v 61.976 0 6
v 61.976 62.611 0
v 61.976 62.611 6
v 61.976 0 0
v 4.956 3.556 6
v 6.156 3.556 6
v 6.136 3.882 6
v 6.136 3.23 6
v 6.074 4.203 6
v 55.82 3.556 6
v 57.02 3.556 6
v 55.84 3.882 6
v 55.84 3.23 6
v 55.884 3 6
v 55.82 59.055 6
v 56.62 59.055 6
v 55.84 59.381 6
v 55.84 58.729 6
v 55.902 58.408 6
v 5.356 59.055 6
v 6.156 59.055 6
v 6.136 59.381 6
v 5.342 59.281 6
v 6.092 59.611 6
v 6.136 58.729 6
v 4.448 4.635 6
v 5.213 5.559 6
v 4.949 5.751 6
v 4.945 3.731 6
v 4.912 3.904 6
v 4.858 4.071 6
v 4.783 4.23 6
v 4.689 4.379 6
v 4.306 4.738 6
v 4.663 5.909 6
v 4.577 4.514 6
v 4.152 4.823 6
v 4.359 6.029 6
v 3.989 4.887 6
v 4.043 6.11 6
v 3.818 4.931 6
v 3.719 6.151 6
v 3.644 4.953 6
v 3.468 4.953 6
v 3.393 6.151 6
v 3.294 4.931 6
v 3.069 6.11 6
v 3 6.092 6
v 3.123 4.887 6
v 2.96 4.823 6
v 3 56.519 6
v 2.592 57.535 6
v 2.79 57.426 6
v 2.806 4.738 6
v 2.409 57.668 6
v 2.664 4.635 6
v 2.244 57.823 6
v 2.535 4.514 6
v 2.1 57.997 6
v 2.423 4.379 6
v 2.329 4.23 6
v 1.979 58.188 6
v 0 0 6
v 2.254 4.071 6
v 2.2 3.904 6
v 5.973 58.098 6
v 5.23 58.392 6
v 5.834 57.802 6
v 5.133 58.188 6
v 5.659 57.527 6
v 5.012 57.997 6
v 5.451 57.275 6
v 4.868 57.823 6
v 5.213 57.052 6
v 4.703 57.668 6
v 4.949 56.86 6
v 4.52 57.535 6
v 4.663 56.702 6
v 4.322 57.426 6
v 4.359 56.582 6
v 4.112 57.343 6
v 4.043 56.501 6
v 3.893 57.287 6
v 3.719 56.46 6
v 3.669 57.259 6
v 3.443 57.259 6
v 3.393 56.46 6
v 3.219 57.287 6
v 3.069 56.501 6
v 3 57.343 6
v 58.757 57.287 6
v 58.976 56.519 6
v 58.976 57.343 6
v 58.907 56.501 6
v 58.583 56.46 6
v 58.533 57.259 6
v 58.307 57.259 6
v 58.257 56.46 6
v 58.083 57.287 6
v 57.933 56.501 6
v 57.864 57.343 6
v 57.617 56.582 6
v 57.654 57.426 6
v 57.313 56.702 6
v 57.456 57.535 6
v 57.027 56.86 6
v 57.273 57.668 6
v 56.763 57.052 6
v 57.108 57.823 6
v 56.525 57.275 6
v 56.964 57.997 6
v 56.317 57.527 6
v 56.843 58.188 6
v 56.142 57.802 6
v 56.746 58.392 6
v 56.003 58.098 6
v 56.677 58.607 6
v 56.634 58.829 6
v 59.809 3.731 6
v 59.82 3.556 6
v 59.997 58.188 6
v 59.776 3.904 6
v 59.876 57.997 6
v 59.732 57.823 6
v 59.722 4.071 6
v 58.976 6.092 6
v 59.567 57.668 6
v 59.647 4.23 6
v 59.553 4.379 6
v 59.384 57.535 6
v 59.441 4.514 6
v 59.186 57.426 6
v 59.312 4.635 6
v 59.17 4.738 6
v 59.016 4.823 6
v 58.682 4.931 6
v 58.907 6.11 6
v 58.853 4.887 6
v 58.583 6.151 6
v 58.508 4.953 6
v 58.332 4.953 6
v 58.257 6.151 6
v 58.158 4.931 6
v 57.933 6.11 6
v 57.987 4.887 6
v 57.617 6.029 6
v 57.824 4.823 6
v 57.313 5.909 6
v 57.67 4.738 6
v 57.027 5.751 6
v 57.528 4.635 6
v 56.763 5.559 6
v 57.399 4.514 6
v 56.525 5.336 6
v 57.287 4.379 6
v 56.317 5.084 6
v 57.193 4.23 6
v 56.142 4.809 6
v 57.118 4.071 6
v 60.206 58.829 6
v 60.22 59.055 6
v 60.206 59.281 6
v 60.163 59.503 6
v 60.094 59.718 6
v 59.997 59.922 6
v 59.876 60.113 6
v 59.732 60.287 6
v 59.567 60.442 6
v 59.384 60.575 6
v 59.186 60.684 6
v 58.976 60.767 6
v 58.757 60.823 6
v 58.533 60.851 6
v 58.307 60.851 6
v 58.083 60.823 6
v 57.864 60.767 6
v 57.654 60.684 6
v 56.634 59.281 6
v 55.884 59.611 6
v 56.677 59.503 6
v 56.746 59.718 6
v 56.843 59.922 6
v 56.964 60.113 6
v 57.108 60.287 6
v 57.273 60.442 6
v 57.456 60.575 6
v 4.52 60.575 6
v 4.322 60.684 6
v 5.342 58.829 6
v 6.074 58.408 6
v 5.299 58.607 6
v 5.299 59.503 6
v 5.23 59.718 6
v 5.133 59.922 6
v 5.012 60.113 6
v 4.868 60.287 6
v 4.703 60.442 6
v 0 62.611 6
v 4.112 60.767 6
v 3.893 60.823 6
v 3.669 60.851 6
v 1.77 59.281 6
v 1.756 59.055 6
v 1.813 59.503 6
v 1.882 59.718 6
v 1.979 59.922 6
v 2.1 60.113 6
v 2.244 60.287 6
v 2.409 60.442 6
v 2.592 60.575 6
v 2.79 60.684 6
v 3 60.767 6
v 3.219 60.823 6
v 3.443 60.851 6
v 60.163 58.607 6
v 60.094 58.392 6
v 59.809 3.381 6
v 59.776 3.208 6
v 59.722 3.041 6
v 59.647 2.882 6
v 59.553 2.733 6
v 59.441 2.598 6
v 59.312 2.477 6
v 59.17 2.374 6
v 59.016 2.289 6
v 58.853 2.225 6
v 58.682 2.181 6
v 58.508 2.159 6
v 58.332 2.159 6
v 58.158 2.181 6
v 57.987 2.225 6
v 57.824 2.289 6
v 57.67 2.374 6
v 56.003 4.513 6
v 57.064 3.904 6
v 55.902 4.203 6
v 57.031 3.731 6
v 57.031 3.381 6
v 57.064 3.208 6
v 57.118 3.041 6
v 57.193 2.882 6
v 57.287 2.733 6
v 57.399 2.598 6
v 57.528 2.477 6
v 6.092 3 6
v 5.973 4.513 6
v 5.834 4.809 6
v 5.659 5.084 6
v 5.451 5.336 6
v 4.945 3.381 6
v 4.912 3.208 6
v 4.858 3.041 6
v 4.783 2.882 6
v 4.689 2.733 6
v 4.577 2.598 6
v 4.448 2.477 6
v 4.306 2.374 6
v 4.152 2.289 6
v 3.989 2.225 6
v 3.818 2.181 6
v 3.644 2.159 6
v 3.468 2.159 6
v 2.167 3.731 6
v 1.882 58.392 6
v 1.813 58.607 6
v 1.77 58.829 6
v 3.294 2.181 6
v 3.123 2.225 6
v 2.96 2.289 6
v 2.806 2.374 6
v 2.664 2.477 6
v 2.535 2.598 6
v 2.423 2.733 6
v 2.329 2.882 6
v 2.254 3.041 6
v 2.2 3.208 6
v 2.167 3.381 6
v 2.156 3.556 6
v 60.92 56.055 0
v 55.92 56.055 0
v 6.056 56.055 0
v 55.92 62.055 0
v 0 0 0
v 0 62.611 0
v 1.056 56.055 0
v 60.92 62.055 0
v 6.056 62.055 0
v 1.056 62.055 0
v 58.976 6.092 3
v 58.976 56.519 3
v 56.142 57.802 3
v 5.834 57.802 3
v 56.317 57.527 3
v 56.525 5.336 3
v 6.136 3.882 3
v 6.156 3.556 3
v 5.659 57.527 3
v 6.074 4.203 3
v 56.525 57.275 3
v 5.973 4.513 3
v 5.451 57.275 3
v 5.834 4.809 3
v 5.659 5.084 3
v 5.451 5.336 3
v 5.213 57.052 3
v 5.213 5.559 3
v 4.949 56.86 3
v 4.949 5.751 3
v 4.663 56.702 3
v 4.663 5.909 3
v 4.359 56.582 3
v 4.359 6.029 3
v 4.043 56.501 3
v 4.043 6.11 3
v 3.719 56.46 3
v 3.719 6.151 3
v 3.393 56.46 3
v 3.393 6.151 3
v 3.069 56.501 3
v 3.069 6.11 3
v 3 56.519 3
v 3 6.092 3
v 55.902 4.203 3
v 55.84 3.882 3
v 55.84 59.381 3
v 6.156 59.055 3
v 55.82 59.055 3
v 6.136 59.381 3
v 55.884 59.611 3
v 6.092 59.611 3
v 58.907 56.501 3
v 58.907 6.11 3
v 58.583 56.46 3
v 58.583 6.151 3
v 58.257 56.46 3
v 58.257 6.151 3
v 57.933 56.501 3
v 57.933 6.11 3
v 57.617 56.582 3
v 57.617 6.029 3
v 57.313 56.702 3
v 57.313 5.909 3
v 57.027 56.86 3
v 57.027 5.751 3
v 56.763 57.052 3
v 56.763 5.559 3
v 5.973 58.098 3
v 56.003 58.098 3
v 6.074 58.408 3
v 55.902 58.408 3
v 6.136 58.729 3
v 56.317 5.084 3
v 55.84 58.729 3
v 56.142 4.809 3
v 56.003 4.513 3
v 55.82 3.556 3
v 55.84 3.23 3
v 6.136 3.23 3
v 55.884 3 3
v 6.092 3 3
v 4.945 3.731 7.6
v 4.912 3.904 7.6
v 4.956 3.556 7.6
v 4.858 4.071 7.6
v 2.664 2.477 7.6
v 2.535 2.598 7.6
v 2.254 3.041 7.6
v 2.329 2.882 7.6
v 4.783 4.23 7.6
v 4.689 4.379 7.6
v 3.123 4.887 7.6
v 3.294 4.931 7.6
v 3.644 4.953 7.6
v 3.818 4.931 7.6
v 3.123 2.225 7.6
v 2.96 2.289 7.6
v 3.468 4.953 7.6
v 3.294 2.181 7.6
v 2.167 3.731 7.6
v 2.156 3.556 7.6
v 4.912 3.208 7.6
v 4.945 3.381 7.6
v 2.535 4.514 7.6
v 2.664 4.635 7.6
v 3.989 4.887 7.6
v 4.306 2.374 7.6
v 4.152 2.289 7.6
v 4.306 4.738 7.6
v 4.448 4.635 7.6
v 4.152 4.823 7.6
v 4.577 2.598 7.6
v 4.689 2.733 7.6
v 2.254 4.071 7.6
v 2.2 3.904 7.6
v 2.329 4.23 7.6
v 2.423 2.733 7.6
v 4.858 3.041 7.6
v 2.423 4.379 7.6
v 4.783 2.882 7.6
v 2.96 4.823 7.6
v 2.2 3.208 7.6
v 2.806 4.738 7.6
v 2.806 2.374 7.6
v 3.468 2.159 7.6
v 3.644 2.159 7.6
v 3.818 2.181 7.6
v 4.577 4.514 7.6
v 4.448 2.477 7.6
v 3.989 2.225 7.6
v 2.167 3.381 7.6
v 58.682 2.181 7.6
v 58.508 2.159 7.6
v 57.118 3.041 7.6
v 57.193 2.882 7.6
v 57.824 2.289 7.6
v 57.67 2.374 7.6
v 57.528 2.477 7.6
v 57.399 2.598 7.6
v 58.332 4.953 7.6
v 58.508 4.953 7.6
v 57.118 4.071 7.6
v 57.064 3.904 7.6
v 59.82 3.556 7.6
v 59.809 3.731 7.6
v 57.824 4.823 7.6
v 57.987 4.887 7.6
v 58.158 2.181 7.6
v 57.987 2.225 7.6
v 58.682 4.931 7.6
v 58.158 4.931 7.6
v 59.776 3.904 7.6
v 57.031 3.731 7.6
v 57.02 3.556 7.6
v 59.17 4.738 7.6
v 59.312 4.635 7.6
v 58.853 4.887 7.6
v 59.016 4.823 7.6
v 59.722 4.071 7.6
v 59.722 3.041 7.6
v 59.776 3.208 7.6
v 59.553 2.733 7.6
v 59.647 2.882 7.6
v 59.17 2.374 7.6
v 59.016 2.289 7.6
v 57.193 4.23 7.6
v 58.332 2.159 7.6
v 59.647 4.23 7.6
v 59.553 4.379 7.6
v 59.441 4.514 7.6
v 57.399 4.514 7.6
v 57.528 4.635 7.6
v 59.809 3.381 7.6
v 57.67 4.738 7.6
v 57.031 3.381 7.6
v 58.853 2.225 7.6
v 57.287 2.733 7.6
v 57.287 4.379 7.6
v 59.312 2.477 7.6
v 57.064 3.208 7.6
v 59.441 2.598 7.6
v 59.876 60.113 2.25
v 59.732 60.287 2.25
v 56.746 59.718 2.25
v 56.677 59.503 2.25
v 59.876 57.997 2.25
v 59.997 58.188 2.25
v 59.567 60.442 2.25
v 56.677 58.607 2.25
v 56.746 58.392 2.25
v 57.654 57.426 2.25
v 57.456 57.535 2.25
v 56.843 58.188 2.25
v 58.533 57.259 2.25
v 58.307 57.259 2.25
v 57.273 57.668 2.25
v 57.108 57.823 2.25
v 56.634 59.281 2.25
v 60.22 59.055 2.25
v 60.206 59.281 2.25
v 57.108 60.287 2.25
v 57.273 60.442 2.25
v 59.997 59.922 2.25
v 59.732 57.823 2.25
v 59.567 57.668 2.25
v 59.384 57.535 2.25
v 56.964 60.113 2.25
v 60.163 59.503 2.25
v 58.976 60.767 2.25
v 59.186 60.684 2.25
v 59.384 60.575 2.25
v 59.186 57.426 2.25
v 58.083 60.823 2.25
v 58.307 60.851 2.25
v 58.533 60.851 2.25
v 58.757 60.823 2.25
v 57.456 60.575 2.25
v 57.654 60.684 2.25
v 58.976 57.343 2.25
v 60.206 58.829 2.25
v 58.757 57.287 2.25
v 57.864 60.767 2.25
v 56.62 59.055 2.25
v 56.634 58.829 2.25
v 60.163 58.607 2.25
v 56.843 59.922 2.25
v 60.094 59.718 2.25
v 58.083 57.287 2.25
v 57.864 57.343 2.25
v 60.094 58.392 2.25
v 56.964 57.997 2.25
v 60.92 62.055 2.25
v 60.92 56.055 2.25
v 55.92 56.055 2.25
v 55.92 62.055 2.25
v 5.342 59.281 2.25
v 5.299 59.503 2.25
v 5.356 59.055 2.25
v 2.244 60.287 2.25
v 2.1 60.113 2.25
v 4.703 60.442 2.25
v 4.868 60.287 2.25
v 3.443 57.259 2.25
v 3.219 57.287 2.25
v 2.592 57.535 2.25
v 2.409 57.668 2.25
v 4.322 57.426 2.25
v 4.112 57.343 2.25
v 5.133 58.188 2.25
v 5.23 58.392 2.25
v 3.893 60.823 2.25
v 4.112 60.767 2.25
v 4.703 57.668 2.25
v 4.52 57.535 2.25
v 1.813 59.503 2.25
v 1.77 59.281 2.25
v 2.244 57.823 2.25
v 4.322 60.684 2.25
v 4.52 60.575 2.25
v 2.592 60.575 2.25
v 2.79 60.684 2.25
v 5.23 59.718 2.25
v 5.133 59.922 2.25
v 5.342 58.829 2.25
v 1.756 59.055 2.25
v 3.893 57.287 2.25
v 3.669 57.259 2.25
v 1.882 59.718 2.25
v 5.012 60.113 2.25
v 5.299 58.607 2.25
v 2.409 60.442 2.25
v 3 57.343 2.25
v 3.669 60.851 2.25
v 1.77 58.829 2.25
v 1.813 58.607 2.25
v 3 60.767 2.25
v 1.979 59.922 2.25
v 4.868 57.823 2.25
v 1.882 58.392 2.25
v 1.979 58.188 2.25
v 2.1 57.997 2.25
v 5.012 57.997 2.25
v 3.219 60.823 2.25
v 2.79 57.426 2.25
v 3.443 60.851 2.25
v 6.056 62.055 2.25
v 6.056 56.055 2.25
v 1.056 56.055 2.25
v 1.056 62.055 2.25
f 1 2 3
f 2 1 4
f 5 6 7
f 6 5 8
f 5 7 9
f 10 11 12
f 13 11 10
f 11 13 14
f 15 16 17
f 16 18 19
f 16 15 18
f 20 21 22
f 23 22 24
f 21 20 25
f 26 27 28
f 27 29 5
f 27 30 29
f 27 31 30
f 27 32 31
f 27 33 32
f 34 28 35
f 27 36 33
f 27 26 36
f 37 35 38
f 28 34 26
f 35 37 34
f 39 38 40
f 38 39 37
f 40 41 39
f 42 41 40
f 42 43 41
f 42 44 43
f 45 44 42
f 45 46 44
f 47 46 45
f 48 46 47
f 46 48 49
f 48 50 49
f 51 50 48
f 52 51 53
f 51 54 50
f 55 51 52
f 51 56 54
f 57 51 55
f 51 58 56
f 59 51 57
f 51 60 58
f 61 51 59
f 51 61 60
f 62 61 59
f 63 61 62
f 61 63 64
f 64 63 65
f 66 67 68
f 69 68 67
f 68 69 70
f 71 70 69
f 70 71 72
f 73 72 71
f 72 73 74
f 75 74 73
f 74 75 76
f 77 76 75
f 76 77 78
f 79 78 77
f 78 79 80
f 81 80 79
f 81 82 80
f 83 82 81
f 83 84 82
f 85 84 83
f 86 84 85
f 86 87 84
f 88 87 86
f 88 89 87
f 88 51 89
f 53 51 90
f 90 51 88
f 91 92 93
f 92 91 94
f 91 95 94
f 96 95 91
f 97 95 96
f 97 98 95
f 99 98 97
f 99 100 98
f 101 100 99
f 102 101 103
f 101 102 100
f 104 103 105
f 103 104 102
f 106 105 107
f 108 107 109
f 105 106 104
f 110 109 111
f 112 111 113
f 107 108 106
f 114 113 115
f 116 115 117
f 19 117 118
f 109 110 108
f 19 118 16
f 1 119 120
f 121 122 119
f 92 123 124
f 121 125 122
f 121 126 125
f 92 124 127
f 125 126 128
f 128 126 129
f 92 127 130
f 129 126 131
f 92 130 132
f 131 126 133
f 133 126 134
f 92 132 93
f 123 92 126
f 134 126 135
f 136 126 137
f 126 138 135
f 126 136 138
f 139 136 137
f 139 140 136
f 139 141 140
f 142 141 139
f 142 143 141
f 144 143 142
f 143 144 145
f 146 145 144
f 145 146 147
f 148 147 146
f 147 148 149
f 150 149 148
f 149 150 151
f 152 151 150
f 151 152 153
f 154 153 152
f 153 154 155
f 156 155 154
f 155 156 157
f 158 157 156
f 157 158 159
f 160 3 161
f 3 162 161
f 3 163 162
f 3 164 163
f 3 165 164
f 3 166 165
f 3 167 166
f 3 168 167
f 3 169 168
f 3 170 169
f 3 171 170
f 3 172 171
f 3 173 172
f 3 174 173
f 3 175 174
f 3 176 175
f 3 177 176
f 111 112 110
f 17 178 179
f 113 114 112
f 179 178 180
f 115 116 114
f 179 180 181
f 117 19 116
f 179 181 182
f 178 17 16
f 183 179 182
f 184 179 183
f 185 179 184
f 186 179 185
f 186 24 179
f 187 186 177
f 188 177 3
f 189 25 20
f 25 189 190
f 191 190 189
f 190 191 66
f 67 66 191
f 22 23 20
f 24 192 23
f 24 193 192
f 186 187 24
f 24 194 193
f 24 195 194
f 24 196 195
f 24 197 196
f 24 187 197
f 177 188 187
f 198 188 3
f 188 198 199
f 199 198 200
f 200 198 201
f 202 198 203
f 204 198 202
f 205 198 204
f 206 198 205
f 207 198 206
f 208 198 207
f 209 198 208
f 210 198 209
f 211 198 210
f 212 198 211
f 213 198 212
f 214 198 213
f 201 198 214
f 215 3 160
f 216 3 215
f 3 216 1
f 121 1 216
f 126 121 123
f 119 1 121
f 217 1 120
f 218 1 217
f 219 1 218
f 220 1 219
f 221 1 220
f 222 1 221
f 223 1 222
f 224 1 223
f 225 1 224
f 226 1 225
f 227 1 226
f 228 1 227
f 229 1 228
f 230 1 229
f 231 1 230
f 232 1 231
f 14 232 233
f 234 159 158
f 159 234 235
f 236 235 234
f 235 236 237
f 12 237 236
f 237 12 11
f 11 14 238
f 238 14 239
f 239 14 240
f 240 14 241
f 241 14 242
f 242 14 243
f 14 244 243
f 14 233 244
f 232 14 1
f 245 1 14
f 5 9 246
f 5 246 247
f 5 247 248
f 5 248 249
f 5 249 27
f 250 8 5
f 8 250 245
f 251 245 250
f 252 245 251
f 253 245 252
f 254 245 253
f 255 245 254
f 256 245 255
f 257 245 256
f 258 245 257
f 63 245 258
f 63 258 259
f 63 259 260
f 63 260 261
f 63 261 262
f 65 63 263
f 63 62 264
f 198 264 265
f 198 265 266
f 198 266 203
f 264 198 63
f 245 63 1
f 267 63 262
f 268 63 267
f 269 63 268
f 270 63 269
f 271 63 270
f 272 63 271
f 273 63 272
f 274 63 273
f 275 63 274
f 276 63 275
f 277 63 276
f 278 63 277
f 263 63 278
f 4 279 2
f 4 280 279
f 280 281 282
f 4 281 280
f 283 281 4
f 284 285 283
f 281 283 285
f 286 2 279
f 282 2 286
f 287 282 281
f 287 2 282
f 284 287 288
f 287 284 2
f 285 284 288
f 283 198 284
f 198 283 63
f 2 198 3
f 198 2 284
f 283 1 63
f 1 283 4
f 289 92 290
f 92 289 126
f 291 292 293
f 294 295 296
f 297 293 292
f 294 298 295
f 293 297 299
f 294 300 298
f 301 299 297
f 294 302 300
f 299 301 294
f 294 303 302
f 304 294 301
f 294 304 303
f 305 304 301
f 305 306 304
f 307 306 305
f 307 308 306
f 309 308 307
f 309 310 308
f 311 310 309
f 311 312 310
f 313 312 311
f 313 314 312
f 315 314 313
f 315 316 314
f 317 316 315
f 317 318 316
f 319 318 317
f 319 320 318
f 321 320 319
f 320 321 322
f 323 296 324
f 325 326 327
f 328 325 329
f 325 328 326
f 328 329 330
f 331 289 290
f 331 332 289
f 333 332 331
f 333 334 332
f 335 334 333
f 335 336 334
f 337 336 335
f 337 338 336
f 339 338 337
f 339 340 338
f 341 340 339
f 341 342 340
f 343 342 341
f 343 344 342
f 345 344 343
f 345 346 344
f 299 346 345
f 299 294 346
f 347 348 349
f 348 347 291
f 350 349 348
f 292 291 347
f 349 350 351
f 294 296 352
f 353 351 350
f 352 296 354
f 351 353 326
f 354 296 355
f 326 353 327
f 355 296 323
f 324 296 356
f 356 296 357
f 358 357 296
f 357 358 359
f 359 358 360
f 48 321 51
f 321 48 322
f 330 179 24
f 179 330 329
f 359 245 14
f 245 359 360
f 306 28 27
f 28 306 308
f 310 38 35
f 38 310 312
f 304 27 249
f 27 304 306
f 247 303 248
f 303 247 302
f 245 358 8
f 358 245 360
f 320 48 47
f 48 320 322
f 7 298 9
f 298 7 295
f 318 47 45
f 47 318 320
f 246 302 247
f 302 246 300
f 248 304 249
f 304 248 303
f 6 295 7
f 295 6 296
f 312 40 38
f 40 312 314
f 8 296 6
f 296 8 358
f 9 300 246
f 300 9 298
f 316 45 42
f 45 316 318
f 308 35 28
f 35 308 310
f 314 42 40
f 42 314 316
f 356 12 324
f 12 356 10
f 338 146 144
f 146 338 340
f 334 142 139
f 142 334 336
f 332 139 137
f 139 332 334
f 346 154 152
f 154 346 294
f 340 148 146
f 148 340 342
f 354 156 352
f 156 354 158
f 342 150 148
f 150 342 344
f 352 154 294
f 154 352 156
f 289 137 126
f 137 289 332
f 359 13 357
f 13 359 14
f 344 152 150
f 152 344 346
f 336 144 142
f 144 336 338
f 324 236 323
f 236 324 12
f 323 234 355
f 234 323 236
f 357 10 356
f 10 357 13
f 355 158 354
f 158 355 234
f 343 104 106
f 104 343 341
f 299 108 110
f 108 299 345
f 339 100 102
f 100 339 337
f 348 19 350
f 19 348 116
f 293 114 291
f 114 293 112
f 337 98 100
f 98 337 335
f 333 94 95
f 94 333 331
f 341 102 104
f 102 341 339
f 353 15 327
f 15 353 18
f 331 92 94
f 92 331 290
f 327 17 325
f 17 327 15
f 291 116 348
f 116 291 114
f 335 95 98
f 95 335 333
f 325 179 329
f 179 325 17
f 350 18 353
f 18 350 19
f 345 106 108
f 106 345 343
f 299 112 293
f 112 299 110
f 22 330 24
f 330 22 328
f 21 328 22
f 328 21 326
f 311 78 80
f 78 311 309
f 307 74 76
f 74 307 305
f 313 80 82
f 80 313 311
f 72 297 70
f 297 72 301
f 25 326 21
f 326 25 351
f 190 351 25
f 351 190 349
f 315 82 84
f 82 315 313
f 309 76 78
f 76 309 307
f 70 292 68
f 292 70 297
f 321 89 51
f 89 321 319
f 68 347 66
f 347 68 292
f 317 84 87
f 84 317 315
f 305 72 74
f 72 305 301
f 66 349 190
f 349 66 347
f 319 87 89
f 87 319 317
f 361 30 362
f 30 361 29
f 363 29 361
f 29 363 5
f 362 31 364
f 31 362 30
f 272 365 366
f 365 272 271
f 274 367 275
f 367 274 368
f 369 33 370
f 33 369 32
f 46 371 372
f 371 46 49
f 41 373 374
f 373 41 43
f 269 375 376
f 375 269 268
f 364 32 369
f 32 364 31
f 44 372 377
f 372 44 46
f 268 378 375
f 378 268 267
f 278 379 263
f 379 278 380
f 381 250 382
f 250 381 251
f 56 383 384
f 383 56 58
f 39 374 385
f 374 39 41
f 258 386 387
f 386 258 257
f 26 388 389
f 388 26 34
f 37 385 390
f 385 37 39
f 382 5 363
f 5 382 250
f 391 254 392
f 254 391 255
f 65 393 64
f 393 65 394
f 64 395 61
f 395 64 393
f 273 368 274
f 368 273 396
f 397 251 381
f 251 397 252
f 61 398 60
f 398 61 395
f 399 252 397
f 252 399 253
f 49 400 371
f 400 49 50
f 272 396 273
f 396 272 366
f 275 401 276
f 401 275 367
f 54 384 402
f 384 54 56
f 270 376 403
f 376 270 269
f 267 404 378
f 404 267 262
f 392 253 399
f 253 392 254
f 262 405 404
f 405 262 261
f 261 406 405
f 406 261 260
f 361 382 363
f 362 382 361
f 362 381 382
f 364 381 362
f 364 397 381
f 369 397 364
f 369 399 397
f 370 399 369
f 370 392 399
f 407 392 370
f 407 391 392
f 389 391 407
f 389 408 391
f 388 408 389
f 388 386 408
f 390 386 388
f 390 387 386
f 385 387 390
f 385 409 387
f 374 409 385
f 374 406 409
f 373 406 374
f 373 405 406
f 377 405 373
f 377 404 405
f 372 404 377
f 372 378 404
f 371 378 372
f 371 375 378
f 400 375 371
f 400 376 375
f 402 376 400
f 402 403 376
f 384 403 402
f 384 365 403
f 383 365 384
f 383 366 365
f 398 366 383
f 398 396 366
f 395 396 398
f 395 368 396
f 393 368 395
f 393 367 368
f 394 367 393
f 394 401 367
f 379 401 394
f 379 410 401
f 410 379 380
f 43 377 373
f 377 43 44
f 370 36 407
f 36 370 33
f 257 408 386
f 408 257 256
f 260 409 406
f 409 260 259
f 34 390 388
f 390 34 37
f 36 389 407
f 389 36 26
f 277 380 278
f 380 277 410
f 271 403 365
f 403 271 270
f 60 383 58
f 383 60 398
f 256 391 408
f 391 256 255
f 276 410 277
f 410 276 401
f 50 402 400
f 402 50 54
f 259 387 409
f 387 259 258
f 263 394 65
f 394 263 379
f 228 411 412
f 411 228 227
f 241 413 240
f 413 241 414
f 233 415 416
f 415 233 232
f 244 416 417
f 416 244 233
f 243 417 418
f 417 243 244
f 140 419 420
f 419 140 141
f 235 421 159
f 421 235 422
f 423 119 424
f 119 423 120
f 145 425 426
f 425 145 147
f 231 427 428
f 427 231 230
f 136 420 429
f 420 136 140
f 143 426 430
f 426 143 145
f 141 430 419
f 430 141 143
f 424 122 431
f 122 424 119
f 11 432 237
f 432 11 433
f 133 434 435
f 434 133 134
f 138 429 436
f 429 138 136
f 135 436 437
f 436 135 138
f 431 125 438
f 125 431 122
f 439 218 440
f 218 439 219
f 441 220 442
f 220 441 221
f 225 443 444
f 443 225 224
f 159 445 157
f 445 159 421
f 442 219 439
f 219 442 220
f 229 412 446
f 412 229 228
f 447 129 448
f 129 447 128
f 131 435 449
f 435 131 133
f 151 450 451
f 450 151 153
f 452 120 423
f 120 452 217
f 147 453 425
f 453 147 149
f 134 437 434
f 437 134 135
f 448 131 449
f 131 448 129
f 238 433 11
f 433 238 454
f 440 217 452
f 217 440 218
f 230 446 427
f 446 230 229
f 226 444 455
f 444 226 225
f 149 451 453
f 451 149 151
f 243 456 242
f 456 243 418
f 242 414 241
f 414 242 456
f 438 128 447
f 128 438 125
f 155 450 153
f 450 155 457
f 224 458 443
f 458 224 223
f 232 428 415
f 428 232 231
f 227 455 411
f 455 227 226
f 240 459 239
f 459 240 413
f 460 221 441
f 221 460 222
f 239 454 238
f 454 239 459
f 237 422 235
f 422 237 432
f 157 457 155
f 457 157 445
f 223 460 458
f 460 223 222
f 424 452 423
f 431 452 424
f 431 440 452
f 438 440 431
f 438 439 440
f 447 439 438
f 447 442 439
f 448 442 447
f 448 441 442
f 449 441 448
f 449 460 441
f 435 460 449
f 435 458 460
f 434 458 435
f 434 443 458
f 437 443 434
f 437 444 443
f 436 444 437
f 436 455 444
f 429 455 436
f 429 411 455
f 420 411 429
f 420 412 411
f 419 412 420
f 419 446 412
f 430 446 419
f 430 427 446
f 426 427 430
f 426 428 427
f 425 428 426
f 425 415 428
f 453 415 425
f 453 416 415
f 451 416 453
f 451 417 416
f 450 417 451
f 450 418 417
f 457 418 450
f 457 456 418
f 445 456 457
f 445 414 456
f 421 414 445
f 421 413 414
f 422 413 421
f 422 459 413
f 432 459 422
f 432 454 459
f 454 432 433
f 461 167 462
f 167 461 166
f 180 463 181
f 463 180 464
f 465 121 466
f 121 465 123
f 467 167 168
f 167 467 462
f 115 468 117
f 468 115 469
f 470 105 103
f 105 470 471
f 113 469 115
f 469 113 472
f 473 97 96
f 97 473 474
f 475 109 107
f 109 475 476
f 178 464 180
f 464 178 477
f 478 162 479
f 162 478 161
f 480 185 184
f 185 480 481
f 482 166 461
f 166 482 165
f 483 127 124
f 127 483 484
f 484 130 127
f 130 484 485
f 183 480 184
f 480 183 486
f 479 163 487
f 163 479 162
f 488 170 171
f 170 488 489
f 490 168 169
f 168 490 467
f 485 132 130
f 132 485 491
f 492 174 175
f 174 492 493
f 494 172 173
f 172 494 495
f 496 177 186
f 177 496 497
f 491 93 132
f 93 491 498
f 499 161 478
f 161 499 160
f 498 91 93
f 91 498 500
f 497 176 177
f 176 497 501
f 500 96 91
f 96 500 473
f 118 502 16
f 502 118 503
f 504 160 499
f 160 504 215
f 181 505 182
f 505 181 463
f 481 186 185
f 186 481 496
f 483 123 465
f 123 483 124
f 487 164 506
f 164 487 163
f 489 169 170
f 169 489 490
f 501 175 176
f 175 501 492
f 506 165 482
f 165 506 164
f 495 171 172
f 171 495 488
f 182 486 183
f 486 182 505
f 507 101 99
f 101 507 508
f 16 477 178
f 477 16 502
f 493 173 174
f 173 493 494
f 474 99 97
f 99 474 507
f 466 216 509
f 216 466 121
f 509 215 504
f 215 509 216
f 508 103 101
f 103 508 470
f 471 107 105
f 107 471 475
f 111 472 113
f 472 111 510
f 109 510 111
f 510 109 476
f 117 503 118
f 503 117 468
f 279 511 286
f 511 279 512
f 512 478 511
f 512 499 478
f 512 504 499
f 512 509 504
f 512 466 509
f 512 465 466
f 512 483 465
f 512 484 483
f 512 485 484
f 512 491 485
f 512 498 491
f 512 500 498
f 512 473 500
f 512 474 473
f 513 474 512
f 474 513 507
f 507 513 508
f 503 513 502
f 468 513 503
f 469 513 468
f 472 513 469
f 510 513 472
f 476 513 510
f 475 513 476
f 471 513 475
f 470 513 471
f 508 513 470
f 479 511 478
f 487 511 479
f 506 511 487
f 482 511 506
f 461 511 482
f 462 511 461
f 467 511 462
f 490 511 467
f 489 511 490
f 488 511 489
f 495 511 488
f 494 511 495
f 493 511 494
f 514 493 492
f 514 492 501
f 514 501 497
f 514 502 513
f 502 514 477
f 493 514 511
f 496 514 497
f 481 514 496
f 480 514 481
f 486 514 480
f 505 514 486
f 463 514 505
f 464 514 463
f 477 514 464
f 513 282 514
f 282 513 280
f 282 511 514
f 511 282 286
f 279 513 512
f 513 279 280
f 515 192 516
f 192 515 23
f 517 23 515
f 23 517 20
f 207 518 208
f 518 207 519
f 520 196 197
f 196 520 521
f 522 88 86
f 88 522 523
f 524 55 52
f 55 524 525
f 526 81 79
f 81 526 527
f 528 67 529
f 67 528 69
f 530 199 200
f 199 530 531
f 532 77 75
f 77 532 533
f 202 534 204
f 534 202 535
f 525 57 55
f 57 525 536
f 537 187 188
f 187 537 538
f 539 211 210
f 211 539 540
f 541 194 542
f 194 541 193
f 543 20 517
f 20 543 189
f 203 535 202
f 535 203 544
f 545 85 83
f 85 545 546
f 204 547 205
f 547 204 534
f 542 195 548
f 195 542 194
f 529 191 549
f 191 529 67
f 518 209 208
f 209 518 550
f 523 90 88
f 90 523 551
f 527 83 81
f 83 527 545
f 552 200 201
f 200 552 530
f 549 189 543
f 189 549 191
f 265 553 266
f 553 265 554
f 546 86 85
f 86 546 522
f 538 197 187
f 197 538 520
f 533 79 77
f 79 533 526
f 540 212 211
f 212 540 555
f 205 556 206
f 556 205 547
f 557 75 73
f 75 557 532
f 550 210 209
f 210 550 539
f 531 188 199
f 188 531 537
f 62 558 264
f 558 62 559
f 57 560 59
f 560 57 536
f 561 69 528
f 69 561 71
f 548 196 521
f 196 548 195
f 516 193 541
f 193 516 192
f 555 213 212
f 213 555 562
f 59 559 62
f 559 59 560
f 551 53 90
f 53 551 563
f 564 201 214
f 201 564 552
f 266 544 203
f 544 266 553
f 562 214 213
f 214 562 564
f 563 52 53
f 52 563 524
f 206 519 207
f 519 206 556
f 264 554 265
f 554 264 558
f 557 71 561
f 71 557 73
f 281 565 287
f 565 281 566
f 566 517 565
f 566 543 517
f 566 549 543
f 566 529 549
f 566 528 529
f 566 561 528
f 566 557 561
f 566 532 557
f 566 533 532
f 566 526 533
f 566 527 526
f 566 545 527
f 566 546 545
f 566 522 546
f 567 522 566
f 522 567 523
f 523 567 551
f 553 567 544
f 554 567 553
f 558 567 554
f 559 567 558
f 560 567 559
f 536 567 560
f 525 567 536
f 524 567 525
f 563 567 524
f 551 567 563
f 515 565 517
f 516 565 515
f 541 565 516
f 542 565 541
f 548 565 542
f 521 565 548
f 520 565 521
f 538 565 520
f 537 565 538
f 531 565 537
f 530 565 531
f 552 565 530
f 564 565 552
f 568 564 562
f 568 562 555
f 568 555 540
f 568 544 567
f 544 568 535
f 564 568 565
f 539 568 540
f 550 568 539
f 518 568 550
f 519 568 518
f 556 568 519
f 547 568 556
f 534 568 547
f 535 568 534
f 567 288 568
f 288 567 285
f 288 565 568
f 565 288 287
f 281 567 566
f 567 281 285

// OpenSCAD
$fn = 50;
pcb_width = 61.976;
pcb_height = 62.611;
housing_height = 20;
housing_thickness = 3;
mounting_hole_inset = 3.556;
mounting_hole_keepout = 4;
mounting_hole_diameter = 3.2;
hole_tolerance = 0.2;
bnc_width = 14.5;
bnc_height = 17.5;
snap_hole_width = 16;
snap_hole_height = 9;
snap_hole_separation = 20.32;
pcb_standoff = 3;
pcb_standoff_width = 1;
nut_width = 5;
nut_height = 6;
nut_depth = 2.25;
pcb_thickness = 1.6;
difference()
{
    union()
    {
        difference()
        {
            cube([pcb_width, pcb_height, housing_thickness+pcb_standoff]);
            translate([housing_thickness,housing_thickness,housing_thickness])
            {   
                cube([pcb_width-2*housing_thickness, pcb_height-2*housing_thickness, pcb_standoff]);
            }
        }
        translate([mounting_hole_inset,mounting_hole_inset,0])cylinder(r=mounting_hole_diameter/2+pcb_standoff_width, h = pcb_standoff + housing_thickness);
        translate([pcb_width-mounting_hole_inset,mounting_hole_inset,0])cylinder(r=mounting_hole_diameter/2+pcb_standoff_width, h = pcb_standoff + housing_thickness);
        translate([pcb_width-mounting_hole_inset,pcb_height-mounting_hole_inset,0])cylinder(r=mounting_hole_diameter/2+pcb_standoff_width, h = pcb_standoff + housing_thickness);
        translate([mounting_hole_inset,pcb_height-mounting_hole_inset,0])cylinder(r=mounting_hole_diameter/2+pcb_standoff_width, h = pcb_standoff + housing_thickness);
        
        translate([mounting_hole_inset,mounting_hole_inset,0]) cylinder(r=mounting_hole_diameter/2-hole_tolerance, h = pcb_standoff + housing_thickness + pcb_thickness);
        translate([pcb_width-mounting_hole_inset,mounting_hole_inset,0]) cylinder(r=mounting_hole_diameter/2-hole_tolerance, h = pcb_standoff + housing_thickness + pcb_thickness);
    }
    translate([pcb_width-mounting_hole_inset,pcb_height-mounting_hole_inset,0])
    {
        cylinder(r=mounting_hole_diameter/2+hole_tolerance, h = pcb_standoff + housing_thickness);
        cube([nut_width, nut_height, nut_depth*2], center=true);
    }
    translate([mounting_hole_inset,pcb_height-mounting_hole_inset,0])
    {
        cylinder(r=mounting_hole_diameter/2+hole_tolerance, h = pcb_standoff + housing_thickness);
        cube([nut_width, nut_height, nut_depth*2], center=true);
    }
    
}
